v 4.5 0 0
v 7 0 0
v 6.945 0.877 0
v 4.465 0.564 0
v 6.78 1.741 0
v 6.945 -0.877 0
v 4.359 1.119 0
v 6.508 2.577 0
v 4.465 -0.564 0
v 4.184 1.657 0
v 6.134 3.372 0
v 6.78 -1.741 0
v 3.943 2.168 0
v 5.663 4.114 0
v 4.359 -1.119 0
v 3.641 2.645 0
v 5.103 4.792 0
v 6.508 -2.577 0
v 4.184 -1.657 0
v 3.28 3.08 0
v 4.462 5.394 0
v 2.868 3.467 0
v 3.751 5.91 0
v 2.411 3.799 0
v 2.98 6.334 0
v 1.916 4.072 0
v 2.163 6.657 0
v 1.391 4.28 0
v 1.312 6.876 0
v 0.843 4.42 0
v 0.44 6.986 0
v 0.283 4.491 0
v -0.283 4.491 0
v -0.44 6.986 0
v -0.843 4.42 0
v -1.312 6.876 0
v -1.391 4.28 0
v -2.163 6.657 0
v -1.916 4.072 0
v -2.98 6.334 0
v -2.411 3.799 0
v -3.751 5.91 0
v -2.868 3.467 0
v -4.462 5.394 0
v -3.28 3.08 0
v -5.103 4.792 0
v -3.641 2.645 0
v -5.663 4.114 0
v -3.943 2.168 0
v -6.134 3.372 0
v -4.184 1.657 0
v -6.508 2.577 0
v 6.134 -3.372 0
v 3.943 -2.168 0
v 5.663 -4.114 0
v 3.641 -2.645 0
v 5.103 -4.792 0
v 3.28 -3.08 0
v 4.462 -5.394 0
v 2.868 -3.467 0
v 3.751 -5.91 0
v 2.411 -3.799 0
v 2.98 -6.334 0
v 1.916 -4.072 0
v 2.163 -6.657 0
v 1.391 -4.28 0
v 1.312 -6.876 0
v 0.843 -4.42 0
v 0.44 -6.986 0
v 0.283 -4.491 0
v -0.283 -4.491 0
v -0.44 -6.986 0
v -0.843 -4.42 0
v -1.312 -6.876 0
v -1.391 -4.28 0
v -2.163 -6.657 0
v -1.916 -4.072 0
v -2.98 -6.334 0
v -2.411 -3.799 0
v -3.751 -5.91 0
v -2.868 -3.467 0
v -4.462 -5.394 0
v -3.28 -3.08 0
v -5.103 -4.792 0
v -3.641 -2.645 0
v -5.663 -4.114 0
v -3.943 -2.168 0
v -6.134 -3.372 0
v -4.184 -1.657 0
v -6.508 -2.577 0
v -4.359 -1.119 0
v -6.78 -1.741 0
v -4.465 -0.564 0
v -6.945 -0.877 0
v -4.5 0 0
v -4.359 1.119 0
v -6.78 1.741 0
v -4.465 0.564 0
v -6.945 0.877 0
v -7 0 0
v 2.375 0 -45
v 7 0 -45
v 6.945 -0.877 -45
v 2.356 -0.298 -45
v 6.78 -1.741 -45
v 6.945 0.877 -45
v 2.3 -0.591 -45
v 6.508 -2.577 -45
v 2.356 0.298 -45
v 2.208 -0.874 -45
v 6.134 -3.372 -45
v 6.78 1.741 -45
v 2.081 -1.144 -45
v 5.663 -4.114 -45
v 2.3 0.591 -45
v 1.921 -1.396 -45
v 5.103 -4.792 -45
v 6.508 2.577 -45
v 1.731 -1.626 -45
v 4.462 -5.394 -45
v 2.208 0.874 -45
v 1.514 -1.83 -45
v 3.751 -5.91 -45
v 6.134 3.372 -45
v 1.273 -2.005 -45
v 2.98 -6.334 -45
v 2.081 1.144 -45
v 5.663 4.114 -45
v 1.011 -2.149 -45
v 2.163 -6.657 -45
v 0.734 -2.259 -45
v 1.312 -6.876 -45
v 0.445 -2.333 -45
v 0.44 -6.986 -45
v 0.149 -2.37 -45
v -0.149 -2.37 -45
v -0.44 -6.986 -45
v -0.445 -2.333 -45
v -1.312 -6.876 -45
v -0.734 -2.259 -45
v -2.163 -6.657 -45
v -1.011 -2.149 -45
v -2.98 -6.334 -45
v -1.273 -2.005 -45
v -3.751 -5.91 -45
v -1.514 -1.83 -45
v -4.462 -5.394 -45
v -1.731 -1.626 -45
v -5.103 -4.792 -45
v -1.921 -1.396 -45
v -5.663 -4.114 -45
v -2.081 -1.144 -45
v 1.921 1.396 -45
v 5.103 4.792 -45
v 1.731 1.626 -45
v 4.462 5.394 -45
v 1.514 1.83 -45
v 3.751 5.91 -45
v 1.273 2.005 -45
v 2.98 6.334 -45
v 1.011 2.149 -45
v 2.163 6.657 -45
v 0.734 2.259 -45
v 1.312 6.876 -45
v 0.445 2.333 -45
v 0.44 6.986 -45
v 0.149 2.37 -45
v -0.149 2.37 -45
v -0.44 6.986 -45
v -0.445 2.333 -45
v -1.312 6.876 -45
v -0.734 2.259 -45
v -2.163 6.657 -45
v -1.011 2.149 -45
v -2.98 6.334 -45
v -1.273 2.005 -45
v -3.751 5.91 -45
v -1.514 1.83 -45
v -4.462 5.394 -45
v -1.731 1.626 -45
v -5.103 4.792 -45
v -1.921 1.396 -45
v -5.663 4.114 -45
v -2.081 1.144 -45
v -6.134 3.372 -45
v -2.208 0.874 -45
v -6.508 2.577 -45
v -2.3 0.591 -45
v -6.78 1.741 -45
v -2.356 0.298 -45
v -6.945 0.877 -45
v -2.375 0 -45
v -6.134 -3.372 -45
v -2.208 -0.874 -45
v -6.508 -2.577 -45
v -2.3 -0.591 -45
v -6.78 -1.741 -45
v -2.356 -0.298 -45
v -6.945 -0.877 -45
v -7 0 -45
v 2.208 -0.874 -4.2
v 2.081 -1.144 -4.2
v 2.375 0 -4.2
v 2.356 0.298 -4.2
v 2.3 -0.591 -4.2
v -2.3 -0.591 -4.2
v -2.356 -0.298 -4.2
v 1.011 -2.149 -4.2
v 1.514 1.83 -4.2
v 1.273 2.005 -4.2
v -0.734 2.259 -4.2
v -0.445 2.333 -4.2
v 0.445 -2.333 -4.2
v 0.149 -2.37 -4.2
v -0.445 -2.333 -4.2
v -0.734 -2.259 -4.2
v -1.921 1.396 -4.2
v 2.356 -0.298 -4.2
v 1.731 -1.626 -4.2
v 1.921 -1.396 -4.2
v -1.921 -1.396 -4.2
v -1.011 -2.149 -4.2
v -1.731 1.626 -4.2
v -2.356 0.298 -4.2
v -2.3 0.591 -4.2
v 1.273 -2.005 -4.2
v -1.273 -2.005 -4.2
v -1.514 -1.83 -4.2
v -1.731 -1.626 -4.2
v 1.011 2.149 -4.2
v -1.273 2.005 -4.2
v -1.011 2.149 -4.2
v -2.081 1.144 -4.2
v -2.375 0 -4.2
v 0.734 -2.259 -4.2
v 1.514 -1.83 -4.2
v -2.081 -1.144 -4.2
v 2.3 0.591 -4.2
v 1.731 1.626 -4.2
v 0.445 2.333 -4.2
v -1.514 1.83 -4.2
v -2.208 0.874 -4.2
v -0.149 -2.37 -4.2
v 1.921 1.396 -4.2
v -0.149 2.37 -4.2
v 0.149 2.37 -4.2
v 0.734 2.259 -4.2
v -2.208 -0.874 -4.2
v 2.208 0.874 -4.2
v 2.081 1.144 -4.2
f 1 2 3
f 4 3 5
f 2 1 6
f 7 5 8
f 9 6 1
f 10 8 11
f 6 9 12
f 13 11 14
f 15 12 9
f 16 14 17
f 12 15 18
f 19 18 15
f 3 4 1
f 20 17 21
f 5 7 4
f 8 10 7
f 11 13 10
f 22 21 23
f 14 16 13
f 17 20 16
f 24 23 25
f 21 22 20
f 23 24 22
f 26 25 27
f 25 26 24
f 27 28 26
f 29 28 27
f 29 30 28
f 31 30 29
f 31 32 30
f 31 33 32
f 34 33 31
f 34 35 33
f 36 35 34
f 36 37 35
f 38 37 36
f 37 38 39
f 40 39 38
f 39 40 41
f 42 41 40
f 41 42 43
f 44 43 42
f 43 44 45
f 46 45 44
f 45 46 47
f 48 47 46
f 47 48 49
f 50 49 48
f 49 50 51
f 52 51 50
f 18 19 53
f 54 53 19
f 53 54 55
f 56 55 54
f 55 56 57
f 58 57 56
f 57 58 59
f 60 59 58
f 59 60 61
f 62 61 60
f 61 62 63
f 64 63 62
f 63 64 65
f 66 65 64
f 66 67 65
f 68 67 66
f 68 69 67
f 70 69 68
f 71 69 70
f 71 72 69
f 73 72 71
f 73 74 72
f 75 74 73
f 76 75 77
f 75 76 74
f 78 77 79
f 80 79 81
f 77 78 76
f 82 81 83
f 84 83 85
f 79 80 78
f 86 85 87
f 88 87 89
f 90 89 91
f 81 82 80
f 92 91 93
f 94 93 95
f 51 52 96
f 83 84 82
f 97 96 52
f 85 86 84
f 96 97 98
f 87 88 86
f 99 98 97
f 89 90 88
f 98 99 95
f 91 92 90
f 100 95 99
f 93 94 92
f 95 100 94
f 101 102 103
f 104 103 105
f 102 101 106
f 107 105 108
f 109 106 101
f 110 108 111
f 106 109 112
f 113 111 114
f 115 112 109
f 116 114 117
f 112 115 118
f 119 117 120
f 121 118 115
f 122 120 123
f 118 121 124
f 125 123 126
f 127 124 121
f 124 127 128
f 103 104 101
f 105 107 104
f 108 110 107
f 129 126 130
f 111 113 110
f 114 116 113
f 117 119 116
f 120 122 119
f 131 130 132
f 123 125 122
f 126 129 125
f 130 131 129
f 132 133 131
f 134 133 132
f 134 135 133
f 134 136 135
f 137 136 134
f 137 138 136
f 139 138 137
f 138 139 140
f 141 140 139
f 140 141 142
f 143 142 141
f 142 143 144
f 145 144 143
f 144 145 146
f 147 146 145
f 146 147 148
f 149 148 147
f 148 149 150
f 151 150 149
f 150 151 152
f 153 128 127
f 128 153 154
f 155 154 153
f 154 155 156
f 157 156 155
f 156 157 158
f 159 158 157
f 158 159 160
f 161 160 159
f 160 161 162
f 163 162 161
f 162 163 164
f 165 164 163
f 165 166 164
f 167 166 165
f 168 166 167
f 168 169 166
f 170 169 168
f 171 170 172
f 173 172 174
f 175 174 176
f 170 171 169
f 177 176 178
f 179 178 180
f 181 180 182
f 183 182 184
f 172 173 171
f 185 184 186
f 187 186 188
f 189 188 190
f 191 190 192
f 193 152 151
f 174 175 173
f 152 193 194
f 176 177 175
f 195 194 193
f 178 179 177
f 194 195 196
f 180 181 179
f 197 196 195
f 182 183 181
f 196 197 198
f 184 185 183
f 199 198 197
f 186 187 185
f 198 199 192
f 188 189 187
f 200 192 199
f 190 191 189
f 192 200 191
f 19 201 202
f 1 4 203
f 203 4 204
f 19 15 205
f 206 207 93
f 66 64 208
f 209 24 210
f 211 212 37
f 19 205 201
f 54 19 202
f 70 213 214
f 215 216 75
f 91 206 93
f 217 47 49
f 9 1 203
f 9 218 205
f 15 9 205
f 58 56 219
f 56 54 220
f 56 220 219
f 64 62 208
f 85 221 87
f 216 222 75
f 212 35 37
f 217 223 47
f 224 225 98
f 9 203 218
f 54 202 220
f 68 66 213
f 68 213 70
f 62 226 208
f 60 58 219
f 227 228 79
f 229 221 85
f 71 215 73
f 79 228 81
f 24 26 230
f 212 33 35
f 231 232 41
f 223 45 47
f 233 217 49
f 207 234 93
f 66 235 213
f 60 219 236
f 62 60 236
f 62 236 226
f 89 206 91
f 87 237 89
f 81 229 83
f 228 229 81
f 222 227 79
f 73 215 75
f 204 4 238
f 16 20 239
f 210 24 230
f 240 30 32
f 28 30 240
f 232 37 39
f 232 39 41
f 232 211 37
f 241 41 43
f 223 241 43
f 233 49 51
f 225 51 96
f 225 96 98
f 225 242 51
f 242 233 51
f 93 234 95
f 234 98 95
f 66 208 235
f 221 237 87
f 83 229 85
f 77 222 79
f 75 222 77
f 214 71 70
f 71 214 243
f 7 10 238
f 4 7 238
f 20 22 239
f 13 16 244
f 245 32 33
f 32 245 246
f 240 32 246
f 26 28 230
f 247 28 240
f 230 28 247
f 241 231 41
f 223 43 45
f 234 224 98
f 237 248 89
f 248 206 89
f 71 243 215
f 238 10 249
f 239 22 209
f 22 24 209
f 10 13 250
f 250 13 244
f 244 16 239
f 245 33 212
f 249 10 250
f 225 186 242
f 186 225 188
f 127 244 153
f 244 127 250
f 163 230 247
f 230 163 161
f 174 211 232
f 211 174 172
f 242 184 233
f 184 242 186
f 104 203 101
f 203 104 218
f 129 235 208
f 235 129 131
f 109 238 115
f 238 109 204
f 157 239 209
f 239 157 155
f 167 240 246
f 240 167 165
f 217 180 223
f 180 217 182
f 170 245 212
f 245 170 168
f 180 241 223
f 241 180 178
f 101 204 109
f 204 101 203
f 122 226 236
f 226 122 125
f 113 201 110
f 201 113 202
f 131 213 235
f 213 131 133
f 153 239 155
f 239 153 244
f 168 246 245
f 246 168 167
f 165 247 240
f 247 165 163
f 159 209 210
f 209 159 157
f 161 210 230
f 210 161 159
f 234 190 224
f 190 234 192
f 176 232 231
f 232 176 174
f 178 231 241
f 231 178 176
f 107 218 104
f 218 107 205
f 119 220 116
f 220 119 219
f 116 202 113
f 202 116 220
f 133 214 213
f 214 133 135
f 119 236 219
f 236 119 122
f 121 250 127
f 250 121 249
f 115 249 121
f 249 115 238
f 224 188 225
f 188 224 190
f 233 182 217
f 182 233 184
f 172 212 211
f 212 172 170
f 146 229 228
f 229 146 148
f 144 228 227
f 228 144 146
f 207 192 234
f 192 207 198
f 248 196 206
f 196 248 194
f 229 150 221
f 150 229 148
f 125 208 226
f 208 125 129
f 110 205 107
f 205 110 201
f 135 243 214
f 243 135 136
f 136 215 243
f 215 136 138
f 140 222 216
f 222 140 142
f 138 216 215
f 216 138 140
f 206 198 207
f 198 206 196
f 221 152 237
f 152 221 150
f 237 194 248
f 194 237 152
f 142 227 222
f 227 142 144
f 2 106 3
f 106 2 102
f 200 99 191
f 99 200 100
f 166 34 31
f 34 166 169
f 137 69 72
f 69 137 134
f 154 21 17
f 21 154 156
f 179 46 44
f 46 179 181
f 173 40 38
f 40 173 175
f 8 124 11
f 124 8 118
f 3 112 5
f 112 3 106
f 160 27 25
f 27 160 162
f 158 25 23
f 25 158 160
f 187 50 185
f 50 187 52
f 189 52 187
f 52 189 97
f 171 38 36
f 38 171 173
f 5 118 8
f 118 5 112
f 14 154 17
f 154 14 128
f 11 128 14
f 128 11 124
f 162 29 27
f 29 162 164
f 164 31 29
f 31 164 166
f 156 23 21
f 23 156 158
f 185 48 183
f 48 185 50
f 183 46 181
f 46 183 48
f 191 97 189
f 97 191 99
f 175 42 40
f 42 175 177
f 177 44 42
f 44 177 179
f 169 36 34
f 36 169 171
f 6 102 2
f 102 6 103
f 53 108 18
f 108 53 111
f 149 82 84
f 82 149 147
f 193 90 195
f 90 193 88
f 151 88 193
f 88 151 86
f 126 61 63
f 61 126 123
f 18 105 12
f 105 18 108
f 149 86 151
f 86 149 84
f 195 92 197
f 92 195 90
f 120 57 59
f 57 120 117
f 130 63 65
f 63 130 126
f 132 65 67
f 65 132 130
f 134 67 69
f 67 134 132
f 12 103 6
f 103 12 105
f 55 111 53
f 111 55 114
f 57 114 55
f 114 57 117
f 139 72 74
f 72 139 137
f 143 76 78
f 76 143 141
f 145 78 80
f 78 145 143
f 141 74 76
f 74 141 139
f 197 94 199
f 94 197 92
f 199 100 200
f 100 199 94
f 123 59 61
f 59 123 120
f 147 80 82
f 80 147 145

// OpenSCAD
$fn = 50;


difference() {
	union() {
		translate(v = [0, 0, -45.0000000000]) {
			cylinder(h = 45, r = 7.0000000000);
		}
	}
	union() {
		translate(v = [0, 0, 0]) {
			rotate(a = [0, 0, 0]) {
				difference() {
					union() {
						#translate(v = [0, 0, -45.0000000000]) {
							cylinder(h = 45, r = 2.2500000000);
						}
						#translate(v = [0, 0, -4.2000000000]) {
							cylinder(h = 4.2000000000, r1 = 2.3750000000, r2 = 4.5000000000);
						}
						#translate(v = [0, 0, -45.0000000000]) {
							cylinder(h = 45, r = 2.3750000000);
						}
						#translate(v = [0, 0, -45.0000000000]) {
							cylinder(h = 45, r = 2.2500000000);
						}
					}
					union();
				}
			}
		}
	}
}
